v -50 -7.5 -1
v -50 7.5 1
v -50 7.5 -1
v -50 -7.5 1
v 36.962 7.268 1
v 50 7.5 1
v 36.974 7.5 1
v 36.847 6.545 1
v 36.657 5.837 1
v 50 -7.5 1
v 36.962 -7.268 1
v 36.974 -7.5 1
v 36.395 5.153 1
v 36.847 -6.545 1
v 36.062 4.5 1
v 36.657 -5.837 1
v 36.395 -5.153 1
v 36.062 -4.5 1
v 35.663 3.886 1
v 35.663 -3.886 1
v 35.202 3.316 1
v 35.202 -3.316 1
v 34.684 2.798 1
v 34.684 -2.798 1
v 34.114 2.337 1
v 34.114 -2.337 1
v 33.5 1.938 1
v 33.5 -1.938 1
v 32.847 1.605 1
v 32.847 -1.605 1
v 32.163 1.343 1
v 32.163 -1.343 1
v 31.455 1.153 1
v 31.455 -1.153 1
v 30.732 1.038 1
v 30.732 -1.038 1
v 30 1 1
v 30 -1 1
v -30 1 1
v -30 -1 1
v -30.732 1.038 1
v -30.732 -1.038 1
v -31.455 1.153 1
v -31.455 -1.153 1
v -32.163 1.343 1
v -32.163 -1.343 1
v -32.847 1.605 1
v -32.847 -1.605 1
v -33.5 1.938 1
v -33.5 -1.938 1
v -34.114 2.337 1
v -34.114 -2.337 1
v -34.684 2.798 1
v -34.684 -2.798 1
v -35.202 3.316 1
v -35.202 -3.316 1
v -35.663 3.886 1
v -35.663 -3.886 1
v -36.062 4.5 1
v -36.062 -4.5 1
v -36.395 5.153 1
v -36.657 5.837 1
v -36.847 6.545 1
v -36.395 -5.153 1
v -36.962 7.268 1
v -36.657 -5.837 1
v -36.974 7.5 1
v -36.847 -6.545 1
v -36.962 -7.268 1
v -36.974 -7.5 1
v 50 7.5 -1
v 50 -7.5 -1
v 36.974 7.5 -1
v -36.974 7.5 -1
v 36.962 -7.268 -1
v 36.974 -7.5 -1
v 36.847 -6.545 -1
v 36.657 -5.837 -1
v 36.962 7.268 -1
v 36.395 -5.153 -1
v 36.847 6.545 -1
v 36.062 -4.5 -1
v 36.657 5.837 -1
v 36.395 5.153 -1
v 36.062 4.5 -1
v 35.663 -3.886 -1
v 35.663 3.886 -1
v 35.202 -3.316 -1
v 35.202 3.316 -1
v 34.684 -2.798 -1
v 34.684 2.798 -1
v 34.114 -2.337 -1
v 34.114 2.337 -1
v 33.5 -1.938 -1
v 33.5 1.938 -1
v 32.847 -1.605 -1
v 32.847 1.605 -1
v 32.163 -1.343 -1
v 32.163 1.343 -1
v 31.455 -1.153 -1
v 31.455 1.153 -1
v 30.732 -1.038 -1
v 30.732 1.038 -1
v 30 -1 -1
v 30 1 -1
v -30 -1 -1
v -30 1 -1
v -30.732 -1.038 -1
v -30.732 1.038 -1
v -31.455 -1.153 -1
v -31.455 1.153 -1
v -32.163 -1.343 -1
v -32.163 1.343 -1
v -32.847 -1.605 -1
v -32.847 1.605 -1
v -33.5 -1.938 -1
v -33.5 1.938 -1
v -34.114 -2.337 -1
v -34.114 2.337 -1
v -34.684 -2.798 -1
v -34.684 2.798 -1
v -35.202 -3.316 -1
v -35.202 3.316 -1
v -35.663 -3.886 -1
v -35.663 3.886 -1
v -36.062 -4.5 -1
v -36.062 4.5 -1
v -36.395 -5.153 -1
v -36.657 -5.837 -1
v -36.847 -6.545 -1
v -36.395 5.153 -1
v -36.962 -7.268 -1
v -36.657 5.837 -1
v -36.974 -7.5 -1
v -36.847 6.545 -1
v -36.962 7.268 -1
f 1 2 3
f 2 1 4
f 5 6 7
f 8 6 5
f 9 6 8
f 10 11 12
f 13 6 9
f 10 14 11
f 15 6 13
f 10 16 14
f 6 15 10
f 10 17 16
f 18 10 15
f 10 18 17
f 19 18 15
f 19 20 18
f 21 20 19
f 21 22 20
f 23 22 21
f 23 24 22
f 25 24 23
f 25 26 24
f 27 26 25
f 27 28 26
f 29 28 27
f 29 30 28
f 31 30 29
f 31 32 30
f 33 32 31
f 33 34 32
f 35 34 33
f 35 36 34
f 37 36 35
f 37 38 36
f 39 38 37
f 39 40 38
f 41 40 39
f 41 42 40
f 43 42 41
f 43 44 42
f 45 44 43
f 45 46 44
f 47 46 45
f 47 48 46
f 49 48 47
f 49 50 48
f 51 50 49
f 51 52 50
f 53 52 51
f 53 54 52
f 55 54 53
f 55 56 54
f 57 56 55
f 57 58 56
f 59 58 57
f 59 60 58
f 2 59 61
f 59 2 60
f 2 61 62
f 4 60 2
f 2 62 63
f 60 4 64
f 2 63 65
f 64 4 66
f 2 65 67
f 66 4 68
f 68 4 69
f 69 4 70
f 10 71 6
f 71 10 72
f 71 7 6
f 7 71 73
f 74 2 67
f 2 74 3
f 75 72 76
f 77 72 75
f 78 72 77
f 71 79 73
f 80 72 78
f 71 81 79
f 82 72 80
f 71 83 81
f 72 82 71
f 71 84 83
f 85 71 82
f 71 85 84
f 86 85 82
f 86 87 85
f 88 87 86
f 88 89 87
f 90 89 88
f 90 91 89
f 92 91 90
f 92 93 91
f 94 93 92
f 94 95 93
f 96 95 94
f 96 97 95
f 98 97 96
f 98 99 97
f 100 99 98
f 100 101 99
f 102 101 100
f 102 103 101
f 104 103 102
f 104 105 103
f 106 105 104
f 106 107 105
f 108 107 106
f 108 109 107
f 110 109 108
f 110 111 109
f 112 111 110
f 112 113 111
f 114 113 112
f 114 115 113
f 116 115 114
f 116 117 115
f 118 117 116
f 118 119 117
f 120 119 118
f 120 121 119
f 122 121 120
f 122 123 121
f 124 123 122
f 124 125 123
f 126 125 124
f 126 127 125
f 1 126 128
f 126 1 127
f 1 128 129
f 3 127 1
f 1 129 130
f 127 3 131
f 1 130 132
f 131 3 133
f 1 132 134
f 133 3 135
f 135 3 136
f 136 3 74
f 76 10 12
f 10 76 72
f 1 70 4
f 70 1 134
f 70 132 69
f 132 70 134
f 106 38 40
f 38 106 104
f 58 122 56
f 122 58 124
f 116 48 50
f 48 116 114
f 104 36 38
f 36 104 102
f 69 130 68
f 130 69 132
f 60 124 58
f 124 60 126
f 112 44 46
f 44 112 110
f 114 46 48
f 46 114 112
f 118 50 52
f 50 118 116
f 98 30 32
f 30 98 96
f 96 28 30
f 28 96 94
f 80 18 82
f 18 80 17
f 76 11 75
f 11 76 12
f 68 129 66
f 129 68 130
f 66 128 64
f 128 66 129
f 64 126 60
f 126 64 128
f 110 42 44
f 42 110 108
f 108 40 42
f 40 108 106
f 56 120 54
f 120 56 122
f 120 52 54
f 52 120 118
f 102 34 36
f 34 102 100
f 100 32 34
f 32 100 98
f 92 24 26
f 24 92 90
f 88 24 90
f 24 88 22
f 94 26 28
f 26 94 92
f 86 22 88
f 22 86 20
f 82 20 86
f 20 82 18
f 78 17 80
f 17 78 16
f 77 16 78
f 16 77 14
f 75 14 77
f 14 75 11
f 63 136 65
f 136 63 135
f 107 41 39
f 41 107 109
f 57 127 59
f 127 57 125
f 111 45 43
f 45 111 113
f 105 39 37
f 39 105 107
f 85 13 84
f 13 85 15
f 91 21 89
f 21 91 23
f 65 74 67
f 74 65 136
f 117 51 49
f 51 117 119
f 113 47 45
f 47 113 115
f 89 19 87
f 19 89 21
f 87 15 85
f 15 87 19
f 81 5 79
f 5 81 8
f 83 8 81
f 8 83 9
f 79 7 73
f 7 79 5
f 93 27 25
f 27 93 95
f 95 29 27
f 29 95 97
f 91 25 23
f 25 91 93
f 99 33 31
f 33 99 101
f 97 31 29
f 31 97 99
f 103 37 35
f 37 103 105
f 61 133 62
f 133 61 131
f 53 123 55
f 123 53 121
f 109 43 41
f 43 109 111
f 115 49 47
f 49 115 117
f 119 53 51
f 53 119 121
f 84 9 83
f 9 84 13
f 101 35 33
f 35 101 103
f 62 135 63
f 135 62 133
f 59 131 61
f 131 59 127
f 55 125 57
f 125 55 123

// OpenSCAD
$fn=60;
difference(){
cube([100,15,2],center=true);
hull(){
translate([-30,-8,-2])cylinder(d=14,h=4);
translate([30,-8,-2])cylinder(d=14,h=4);
}
hull(){
translate([-30,8,-2])cylinder(d=14,h=4);
translate([30,8,-2])cylinder(d=14,h=4);
}
}
